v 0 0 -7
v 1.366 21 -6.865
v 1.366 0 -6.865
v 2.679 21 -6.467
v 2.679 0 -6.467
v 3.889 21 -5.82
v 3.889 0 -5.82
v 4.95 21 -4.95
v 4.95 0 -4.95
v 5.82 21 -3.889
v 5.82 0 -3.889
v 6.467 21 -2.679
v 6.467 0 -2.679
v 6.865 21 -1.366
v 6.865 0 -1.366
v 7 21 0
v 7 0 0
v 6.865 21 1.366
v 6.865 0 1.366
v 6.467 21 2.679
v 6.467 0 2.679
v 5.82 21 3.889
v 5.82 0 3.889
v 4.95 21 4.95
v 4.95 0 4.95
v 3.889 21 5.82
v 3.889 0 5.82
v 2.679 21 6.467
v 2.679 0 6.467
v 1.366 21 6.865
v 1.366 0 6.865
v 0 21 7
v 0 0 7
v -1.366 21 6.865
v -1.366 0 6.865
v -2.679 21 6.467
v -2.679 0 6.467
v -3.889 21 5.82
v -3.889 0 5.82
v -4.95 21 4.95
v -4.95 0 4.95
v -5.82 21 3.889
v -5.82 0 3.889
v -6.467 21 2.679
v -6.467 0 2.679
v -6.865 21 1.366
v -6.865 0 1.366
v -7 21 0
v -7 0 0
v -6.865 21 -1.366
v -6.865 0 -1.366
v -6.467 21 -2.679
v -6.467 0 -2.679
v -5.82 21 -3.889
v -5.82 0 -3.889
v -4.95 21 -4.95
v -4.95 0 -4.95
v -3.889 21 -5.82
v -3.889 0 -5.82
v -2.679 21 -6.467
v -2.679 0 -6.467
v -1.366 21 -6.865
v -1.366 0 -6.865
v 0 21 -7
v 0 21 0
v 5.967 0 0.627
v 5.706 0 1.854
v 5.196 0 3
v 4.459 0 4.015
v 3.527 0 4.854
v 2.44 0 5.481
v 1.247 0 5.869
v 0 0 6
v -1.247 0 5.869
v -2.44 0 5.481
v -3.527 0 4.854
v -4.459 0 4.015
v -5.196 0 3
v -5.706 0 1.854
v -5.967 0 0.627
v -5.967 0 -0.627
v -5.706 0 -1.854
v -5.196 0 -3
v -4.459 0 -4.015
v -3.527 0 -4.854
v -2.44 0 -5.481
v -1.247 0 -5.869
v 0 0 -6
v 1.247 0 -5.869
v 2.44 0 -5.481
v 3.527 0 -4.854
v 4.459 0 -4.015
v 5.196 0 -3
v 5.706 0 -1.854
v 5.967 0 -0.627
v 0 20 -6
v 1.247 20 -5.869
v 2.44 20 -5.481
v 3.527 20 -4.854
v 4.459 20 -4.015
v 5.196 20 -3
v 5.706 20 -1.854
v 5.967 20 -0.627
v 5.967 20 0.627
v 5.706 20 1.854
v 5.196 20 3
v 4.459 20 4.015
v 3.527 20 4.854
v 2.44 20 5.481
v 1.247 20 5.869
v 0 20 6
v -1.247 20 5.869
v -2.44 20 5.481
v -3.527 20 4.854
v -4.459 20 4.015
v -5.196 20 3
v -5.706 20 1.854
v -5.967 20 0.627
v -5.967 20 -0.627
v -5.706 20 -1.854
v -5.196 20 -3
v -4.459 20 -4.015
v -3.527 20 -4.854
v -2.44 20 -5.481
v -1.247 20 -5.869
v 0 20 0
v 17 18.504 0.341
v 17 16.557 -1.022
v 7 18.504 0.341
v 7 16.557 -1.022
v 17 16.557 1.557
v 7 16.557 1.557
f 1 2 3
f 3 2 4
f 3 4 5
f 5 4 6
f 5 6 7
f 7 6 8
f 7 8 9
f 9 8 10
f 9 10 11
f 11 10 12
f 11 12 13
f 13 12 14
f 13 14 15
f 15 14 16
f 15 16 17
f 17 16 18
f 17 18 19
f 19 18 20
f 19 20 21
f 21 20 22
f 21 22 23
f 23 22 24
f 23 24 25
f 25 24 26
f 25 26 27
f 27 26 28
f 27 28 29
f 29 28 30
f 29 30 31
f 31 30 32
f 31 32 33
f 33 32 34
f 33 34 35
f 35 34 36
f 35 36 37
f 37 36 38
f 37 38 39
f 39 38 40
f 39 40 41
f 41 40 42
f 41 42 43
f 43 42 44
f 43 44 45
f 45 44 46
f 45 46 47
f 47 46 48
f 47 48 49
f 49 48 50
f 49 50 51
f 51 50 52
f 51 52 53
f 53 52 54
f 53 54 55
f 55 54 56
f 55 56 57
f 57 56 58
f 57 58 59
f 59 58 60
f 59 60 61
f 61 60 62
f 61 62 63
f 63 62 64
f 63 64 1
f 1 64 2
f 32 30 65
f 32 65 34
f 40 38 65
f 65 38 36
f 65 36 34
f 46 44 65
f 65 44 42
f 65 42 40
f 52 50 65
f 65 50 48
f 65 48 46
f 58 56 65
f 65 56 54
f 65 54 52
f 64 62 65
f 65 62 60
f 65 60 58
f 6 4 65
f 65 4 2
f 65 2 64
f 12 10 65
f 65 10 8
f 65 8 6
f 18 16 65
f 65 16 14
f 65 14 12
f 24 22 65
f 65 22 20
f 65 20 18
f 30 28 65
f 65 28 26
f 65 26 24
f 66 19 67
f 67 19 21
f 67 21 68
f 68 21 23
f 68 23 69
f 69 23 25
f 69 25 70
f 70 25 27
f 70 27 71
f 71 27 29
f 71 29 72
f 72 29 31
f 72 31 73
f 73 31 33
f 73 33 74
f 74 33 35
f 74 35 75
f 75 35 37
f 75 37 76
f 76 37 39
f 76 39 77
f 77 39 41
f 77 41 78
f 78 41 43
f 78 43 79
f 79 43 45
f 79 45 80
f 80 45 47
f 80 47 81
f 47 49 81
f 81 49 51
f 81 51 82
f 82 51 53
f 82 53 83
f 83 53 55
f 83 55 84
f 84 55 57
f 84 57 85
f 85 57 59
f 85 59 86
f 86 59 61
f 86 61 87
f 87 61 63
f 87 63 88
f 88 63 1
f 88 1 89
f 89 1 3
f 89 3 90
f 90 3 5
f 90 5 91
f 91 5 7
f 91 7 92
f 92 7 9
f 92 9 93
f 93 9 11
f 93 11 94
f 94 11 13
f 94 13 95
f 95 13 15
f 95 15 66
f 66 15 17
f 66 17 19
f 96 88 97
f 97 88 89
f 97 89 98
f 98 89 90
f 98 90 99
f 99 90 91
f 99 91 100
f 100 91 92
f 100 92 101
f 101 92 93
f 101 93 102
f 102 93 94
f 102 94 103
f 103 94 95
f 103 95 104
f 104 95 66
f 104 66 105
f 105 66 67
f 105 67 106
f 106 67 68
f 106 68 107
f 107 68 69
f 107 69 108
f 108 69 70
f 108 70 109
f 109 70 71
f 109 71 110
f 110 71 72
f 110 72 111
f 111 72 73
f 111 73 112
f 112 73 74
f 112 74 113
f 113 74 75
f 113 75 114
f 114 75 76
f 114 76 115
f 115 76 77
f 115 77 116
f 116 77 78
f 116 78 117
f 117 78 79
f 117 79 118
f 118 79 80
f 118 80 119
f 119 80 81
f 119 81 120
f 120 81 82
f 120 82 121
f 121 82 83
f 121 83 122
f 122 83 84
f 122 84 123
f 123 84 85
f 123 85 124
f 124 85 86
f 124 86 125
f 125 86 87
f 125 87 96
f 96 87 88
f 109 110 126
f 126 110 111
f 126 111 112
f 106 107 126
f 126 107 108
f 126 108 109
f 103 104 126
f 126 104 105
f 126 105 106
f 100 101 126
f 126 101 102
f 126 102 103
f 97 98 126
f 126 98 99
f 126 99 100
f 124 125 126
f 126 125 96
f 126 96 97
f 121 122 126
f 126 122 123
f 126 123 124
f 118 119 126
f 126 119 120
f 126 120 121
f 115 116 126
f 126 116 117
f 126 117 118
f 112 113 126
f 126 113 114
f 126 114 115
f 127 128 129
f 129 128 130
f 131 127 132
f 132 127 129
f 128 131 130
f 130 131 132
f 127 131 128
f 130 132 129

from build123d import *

# Parameters (mm, degrees)
SKETCH1_R           = 7
BOSS_EXTRUDE1_DEPTH = 21
SHELL2_T            = -1
BOSS_EXTRUDE2_DEPTH = 10


with BuildPart() as part:
    # Sketch1 → Boss-Extrude1 (new body)
    with BuildSketch(Plane(origin=(0, 0, 0), x_dir=(1, 0, 0), z_dir=(0, 1, 0))):
        with Locations(Location((0, 0, 0), (0, 0, 90))):
            Circle(SKETCH1_R)
    extrude(amount=BOSS_EXTRUDE1_DEPTH)

    # Shell2
    shell2_openings = [part.faces().sort_by_distance(p)[0] for p in [
        (0, 0, 0),
    ]]
    offset(amount=SHELL2_T, openings=shell2_openings, kind=Kind.INTERSECTION)


with BuildPart() as body_2:
    # Sketch3 → Boss-Extrude2 (new body)
    with BuildSketch(Plane(origin=(7, 0, 0), x_dir=(0, 0, -1), z_dir=(1, 0, 0))):
        Polygon((-0.340580721, 18.503646946), (-1.556940439, 16.557471397), (1.021742163, 16.557471397), align=None)
    extrude(amount=BOSS_EXTRUDE2_DEPTH)


solid = Compound([part.part, body_2.part])
